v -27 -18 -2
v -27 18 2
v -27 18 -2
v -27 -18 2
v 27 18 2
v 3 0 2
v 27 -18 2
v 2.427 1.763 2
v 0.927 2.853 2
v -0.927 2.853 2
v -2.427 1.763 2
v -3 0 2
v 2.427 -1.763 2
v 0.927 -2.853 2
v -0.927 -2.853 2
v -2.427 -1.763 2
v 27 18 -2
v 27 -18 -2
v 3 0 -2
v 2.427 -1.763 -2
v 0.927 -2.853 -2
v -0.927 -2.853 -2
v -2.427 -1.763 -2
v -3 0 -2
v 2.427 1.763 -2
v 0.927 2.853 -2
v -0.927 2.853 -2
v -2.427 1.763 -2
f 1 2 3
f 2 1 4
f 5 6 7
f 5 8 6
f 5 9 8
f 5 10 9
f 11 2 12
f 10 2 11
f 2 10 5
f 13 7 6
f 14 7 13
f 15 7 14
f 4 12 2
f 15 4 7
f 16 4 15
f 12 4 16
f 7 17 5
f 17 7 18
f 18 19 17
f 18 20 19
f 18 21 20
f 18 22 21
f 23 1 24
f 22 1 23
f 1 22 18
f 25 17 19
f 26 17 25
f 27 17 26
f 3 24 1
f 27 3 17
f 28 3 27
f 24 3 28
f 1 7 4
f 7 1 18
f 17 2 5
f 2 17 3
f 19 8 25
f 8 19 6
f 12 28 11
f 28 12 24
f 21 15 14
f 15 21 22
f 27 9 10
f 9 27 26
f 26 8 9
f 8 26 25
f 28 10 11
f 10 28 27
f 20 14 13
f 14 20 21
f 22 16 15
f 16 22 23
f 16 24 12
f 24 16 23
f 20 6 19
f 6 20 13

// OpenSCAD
// Rectangular plate with centered hole
difference() {
    // Main plate body
    cube([54, 36, 4], center = true);
    
    // Cylindrical hole along Z axis
    cylinder(h = 5, d = 6, center = true);
}
